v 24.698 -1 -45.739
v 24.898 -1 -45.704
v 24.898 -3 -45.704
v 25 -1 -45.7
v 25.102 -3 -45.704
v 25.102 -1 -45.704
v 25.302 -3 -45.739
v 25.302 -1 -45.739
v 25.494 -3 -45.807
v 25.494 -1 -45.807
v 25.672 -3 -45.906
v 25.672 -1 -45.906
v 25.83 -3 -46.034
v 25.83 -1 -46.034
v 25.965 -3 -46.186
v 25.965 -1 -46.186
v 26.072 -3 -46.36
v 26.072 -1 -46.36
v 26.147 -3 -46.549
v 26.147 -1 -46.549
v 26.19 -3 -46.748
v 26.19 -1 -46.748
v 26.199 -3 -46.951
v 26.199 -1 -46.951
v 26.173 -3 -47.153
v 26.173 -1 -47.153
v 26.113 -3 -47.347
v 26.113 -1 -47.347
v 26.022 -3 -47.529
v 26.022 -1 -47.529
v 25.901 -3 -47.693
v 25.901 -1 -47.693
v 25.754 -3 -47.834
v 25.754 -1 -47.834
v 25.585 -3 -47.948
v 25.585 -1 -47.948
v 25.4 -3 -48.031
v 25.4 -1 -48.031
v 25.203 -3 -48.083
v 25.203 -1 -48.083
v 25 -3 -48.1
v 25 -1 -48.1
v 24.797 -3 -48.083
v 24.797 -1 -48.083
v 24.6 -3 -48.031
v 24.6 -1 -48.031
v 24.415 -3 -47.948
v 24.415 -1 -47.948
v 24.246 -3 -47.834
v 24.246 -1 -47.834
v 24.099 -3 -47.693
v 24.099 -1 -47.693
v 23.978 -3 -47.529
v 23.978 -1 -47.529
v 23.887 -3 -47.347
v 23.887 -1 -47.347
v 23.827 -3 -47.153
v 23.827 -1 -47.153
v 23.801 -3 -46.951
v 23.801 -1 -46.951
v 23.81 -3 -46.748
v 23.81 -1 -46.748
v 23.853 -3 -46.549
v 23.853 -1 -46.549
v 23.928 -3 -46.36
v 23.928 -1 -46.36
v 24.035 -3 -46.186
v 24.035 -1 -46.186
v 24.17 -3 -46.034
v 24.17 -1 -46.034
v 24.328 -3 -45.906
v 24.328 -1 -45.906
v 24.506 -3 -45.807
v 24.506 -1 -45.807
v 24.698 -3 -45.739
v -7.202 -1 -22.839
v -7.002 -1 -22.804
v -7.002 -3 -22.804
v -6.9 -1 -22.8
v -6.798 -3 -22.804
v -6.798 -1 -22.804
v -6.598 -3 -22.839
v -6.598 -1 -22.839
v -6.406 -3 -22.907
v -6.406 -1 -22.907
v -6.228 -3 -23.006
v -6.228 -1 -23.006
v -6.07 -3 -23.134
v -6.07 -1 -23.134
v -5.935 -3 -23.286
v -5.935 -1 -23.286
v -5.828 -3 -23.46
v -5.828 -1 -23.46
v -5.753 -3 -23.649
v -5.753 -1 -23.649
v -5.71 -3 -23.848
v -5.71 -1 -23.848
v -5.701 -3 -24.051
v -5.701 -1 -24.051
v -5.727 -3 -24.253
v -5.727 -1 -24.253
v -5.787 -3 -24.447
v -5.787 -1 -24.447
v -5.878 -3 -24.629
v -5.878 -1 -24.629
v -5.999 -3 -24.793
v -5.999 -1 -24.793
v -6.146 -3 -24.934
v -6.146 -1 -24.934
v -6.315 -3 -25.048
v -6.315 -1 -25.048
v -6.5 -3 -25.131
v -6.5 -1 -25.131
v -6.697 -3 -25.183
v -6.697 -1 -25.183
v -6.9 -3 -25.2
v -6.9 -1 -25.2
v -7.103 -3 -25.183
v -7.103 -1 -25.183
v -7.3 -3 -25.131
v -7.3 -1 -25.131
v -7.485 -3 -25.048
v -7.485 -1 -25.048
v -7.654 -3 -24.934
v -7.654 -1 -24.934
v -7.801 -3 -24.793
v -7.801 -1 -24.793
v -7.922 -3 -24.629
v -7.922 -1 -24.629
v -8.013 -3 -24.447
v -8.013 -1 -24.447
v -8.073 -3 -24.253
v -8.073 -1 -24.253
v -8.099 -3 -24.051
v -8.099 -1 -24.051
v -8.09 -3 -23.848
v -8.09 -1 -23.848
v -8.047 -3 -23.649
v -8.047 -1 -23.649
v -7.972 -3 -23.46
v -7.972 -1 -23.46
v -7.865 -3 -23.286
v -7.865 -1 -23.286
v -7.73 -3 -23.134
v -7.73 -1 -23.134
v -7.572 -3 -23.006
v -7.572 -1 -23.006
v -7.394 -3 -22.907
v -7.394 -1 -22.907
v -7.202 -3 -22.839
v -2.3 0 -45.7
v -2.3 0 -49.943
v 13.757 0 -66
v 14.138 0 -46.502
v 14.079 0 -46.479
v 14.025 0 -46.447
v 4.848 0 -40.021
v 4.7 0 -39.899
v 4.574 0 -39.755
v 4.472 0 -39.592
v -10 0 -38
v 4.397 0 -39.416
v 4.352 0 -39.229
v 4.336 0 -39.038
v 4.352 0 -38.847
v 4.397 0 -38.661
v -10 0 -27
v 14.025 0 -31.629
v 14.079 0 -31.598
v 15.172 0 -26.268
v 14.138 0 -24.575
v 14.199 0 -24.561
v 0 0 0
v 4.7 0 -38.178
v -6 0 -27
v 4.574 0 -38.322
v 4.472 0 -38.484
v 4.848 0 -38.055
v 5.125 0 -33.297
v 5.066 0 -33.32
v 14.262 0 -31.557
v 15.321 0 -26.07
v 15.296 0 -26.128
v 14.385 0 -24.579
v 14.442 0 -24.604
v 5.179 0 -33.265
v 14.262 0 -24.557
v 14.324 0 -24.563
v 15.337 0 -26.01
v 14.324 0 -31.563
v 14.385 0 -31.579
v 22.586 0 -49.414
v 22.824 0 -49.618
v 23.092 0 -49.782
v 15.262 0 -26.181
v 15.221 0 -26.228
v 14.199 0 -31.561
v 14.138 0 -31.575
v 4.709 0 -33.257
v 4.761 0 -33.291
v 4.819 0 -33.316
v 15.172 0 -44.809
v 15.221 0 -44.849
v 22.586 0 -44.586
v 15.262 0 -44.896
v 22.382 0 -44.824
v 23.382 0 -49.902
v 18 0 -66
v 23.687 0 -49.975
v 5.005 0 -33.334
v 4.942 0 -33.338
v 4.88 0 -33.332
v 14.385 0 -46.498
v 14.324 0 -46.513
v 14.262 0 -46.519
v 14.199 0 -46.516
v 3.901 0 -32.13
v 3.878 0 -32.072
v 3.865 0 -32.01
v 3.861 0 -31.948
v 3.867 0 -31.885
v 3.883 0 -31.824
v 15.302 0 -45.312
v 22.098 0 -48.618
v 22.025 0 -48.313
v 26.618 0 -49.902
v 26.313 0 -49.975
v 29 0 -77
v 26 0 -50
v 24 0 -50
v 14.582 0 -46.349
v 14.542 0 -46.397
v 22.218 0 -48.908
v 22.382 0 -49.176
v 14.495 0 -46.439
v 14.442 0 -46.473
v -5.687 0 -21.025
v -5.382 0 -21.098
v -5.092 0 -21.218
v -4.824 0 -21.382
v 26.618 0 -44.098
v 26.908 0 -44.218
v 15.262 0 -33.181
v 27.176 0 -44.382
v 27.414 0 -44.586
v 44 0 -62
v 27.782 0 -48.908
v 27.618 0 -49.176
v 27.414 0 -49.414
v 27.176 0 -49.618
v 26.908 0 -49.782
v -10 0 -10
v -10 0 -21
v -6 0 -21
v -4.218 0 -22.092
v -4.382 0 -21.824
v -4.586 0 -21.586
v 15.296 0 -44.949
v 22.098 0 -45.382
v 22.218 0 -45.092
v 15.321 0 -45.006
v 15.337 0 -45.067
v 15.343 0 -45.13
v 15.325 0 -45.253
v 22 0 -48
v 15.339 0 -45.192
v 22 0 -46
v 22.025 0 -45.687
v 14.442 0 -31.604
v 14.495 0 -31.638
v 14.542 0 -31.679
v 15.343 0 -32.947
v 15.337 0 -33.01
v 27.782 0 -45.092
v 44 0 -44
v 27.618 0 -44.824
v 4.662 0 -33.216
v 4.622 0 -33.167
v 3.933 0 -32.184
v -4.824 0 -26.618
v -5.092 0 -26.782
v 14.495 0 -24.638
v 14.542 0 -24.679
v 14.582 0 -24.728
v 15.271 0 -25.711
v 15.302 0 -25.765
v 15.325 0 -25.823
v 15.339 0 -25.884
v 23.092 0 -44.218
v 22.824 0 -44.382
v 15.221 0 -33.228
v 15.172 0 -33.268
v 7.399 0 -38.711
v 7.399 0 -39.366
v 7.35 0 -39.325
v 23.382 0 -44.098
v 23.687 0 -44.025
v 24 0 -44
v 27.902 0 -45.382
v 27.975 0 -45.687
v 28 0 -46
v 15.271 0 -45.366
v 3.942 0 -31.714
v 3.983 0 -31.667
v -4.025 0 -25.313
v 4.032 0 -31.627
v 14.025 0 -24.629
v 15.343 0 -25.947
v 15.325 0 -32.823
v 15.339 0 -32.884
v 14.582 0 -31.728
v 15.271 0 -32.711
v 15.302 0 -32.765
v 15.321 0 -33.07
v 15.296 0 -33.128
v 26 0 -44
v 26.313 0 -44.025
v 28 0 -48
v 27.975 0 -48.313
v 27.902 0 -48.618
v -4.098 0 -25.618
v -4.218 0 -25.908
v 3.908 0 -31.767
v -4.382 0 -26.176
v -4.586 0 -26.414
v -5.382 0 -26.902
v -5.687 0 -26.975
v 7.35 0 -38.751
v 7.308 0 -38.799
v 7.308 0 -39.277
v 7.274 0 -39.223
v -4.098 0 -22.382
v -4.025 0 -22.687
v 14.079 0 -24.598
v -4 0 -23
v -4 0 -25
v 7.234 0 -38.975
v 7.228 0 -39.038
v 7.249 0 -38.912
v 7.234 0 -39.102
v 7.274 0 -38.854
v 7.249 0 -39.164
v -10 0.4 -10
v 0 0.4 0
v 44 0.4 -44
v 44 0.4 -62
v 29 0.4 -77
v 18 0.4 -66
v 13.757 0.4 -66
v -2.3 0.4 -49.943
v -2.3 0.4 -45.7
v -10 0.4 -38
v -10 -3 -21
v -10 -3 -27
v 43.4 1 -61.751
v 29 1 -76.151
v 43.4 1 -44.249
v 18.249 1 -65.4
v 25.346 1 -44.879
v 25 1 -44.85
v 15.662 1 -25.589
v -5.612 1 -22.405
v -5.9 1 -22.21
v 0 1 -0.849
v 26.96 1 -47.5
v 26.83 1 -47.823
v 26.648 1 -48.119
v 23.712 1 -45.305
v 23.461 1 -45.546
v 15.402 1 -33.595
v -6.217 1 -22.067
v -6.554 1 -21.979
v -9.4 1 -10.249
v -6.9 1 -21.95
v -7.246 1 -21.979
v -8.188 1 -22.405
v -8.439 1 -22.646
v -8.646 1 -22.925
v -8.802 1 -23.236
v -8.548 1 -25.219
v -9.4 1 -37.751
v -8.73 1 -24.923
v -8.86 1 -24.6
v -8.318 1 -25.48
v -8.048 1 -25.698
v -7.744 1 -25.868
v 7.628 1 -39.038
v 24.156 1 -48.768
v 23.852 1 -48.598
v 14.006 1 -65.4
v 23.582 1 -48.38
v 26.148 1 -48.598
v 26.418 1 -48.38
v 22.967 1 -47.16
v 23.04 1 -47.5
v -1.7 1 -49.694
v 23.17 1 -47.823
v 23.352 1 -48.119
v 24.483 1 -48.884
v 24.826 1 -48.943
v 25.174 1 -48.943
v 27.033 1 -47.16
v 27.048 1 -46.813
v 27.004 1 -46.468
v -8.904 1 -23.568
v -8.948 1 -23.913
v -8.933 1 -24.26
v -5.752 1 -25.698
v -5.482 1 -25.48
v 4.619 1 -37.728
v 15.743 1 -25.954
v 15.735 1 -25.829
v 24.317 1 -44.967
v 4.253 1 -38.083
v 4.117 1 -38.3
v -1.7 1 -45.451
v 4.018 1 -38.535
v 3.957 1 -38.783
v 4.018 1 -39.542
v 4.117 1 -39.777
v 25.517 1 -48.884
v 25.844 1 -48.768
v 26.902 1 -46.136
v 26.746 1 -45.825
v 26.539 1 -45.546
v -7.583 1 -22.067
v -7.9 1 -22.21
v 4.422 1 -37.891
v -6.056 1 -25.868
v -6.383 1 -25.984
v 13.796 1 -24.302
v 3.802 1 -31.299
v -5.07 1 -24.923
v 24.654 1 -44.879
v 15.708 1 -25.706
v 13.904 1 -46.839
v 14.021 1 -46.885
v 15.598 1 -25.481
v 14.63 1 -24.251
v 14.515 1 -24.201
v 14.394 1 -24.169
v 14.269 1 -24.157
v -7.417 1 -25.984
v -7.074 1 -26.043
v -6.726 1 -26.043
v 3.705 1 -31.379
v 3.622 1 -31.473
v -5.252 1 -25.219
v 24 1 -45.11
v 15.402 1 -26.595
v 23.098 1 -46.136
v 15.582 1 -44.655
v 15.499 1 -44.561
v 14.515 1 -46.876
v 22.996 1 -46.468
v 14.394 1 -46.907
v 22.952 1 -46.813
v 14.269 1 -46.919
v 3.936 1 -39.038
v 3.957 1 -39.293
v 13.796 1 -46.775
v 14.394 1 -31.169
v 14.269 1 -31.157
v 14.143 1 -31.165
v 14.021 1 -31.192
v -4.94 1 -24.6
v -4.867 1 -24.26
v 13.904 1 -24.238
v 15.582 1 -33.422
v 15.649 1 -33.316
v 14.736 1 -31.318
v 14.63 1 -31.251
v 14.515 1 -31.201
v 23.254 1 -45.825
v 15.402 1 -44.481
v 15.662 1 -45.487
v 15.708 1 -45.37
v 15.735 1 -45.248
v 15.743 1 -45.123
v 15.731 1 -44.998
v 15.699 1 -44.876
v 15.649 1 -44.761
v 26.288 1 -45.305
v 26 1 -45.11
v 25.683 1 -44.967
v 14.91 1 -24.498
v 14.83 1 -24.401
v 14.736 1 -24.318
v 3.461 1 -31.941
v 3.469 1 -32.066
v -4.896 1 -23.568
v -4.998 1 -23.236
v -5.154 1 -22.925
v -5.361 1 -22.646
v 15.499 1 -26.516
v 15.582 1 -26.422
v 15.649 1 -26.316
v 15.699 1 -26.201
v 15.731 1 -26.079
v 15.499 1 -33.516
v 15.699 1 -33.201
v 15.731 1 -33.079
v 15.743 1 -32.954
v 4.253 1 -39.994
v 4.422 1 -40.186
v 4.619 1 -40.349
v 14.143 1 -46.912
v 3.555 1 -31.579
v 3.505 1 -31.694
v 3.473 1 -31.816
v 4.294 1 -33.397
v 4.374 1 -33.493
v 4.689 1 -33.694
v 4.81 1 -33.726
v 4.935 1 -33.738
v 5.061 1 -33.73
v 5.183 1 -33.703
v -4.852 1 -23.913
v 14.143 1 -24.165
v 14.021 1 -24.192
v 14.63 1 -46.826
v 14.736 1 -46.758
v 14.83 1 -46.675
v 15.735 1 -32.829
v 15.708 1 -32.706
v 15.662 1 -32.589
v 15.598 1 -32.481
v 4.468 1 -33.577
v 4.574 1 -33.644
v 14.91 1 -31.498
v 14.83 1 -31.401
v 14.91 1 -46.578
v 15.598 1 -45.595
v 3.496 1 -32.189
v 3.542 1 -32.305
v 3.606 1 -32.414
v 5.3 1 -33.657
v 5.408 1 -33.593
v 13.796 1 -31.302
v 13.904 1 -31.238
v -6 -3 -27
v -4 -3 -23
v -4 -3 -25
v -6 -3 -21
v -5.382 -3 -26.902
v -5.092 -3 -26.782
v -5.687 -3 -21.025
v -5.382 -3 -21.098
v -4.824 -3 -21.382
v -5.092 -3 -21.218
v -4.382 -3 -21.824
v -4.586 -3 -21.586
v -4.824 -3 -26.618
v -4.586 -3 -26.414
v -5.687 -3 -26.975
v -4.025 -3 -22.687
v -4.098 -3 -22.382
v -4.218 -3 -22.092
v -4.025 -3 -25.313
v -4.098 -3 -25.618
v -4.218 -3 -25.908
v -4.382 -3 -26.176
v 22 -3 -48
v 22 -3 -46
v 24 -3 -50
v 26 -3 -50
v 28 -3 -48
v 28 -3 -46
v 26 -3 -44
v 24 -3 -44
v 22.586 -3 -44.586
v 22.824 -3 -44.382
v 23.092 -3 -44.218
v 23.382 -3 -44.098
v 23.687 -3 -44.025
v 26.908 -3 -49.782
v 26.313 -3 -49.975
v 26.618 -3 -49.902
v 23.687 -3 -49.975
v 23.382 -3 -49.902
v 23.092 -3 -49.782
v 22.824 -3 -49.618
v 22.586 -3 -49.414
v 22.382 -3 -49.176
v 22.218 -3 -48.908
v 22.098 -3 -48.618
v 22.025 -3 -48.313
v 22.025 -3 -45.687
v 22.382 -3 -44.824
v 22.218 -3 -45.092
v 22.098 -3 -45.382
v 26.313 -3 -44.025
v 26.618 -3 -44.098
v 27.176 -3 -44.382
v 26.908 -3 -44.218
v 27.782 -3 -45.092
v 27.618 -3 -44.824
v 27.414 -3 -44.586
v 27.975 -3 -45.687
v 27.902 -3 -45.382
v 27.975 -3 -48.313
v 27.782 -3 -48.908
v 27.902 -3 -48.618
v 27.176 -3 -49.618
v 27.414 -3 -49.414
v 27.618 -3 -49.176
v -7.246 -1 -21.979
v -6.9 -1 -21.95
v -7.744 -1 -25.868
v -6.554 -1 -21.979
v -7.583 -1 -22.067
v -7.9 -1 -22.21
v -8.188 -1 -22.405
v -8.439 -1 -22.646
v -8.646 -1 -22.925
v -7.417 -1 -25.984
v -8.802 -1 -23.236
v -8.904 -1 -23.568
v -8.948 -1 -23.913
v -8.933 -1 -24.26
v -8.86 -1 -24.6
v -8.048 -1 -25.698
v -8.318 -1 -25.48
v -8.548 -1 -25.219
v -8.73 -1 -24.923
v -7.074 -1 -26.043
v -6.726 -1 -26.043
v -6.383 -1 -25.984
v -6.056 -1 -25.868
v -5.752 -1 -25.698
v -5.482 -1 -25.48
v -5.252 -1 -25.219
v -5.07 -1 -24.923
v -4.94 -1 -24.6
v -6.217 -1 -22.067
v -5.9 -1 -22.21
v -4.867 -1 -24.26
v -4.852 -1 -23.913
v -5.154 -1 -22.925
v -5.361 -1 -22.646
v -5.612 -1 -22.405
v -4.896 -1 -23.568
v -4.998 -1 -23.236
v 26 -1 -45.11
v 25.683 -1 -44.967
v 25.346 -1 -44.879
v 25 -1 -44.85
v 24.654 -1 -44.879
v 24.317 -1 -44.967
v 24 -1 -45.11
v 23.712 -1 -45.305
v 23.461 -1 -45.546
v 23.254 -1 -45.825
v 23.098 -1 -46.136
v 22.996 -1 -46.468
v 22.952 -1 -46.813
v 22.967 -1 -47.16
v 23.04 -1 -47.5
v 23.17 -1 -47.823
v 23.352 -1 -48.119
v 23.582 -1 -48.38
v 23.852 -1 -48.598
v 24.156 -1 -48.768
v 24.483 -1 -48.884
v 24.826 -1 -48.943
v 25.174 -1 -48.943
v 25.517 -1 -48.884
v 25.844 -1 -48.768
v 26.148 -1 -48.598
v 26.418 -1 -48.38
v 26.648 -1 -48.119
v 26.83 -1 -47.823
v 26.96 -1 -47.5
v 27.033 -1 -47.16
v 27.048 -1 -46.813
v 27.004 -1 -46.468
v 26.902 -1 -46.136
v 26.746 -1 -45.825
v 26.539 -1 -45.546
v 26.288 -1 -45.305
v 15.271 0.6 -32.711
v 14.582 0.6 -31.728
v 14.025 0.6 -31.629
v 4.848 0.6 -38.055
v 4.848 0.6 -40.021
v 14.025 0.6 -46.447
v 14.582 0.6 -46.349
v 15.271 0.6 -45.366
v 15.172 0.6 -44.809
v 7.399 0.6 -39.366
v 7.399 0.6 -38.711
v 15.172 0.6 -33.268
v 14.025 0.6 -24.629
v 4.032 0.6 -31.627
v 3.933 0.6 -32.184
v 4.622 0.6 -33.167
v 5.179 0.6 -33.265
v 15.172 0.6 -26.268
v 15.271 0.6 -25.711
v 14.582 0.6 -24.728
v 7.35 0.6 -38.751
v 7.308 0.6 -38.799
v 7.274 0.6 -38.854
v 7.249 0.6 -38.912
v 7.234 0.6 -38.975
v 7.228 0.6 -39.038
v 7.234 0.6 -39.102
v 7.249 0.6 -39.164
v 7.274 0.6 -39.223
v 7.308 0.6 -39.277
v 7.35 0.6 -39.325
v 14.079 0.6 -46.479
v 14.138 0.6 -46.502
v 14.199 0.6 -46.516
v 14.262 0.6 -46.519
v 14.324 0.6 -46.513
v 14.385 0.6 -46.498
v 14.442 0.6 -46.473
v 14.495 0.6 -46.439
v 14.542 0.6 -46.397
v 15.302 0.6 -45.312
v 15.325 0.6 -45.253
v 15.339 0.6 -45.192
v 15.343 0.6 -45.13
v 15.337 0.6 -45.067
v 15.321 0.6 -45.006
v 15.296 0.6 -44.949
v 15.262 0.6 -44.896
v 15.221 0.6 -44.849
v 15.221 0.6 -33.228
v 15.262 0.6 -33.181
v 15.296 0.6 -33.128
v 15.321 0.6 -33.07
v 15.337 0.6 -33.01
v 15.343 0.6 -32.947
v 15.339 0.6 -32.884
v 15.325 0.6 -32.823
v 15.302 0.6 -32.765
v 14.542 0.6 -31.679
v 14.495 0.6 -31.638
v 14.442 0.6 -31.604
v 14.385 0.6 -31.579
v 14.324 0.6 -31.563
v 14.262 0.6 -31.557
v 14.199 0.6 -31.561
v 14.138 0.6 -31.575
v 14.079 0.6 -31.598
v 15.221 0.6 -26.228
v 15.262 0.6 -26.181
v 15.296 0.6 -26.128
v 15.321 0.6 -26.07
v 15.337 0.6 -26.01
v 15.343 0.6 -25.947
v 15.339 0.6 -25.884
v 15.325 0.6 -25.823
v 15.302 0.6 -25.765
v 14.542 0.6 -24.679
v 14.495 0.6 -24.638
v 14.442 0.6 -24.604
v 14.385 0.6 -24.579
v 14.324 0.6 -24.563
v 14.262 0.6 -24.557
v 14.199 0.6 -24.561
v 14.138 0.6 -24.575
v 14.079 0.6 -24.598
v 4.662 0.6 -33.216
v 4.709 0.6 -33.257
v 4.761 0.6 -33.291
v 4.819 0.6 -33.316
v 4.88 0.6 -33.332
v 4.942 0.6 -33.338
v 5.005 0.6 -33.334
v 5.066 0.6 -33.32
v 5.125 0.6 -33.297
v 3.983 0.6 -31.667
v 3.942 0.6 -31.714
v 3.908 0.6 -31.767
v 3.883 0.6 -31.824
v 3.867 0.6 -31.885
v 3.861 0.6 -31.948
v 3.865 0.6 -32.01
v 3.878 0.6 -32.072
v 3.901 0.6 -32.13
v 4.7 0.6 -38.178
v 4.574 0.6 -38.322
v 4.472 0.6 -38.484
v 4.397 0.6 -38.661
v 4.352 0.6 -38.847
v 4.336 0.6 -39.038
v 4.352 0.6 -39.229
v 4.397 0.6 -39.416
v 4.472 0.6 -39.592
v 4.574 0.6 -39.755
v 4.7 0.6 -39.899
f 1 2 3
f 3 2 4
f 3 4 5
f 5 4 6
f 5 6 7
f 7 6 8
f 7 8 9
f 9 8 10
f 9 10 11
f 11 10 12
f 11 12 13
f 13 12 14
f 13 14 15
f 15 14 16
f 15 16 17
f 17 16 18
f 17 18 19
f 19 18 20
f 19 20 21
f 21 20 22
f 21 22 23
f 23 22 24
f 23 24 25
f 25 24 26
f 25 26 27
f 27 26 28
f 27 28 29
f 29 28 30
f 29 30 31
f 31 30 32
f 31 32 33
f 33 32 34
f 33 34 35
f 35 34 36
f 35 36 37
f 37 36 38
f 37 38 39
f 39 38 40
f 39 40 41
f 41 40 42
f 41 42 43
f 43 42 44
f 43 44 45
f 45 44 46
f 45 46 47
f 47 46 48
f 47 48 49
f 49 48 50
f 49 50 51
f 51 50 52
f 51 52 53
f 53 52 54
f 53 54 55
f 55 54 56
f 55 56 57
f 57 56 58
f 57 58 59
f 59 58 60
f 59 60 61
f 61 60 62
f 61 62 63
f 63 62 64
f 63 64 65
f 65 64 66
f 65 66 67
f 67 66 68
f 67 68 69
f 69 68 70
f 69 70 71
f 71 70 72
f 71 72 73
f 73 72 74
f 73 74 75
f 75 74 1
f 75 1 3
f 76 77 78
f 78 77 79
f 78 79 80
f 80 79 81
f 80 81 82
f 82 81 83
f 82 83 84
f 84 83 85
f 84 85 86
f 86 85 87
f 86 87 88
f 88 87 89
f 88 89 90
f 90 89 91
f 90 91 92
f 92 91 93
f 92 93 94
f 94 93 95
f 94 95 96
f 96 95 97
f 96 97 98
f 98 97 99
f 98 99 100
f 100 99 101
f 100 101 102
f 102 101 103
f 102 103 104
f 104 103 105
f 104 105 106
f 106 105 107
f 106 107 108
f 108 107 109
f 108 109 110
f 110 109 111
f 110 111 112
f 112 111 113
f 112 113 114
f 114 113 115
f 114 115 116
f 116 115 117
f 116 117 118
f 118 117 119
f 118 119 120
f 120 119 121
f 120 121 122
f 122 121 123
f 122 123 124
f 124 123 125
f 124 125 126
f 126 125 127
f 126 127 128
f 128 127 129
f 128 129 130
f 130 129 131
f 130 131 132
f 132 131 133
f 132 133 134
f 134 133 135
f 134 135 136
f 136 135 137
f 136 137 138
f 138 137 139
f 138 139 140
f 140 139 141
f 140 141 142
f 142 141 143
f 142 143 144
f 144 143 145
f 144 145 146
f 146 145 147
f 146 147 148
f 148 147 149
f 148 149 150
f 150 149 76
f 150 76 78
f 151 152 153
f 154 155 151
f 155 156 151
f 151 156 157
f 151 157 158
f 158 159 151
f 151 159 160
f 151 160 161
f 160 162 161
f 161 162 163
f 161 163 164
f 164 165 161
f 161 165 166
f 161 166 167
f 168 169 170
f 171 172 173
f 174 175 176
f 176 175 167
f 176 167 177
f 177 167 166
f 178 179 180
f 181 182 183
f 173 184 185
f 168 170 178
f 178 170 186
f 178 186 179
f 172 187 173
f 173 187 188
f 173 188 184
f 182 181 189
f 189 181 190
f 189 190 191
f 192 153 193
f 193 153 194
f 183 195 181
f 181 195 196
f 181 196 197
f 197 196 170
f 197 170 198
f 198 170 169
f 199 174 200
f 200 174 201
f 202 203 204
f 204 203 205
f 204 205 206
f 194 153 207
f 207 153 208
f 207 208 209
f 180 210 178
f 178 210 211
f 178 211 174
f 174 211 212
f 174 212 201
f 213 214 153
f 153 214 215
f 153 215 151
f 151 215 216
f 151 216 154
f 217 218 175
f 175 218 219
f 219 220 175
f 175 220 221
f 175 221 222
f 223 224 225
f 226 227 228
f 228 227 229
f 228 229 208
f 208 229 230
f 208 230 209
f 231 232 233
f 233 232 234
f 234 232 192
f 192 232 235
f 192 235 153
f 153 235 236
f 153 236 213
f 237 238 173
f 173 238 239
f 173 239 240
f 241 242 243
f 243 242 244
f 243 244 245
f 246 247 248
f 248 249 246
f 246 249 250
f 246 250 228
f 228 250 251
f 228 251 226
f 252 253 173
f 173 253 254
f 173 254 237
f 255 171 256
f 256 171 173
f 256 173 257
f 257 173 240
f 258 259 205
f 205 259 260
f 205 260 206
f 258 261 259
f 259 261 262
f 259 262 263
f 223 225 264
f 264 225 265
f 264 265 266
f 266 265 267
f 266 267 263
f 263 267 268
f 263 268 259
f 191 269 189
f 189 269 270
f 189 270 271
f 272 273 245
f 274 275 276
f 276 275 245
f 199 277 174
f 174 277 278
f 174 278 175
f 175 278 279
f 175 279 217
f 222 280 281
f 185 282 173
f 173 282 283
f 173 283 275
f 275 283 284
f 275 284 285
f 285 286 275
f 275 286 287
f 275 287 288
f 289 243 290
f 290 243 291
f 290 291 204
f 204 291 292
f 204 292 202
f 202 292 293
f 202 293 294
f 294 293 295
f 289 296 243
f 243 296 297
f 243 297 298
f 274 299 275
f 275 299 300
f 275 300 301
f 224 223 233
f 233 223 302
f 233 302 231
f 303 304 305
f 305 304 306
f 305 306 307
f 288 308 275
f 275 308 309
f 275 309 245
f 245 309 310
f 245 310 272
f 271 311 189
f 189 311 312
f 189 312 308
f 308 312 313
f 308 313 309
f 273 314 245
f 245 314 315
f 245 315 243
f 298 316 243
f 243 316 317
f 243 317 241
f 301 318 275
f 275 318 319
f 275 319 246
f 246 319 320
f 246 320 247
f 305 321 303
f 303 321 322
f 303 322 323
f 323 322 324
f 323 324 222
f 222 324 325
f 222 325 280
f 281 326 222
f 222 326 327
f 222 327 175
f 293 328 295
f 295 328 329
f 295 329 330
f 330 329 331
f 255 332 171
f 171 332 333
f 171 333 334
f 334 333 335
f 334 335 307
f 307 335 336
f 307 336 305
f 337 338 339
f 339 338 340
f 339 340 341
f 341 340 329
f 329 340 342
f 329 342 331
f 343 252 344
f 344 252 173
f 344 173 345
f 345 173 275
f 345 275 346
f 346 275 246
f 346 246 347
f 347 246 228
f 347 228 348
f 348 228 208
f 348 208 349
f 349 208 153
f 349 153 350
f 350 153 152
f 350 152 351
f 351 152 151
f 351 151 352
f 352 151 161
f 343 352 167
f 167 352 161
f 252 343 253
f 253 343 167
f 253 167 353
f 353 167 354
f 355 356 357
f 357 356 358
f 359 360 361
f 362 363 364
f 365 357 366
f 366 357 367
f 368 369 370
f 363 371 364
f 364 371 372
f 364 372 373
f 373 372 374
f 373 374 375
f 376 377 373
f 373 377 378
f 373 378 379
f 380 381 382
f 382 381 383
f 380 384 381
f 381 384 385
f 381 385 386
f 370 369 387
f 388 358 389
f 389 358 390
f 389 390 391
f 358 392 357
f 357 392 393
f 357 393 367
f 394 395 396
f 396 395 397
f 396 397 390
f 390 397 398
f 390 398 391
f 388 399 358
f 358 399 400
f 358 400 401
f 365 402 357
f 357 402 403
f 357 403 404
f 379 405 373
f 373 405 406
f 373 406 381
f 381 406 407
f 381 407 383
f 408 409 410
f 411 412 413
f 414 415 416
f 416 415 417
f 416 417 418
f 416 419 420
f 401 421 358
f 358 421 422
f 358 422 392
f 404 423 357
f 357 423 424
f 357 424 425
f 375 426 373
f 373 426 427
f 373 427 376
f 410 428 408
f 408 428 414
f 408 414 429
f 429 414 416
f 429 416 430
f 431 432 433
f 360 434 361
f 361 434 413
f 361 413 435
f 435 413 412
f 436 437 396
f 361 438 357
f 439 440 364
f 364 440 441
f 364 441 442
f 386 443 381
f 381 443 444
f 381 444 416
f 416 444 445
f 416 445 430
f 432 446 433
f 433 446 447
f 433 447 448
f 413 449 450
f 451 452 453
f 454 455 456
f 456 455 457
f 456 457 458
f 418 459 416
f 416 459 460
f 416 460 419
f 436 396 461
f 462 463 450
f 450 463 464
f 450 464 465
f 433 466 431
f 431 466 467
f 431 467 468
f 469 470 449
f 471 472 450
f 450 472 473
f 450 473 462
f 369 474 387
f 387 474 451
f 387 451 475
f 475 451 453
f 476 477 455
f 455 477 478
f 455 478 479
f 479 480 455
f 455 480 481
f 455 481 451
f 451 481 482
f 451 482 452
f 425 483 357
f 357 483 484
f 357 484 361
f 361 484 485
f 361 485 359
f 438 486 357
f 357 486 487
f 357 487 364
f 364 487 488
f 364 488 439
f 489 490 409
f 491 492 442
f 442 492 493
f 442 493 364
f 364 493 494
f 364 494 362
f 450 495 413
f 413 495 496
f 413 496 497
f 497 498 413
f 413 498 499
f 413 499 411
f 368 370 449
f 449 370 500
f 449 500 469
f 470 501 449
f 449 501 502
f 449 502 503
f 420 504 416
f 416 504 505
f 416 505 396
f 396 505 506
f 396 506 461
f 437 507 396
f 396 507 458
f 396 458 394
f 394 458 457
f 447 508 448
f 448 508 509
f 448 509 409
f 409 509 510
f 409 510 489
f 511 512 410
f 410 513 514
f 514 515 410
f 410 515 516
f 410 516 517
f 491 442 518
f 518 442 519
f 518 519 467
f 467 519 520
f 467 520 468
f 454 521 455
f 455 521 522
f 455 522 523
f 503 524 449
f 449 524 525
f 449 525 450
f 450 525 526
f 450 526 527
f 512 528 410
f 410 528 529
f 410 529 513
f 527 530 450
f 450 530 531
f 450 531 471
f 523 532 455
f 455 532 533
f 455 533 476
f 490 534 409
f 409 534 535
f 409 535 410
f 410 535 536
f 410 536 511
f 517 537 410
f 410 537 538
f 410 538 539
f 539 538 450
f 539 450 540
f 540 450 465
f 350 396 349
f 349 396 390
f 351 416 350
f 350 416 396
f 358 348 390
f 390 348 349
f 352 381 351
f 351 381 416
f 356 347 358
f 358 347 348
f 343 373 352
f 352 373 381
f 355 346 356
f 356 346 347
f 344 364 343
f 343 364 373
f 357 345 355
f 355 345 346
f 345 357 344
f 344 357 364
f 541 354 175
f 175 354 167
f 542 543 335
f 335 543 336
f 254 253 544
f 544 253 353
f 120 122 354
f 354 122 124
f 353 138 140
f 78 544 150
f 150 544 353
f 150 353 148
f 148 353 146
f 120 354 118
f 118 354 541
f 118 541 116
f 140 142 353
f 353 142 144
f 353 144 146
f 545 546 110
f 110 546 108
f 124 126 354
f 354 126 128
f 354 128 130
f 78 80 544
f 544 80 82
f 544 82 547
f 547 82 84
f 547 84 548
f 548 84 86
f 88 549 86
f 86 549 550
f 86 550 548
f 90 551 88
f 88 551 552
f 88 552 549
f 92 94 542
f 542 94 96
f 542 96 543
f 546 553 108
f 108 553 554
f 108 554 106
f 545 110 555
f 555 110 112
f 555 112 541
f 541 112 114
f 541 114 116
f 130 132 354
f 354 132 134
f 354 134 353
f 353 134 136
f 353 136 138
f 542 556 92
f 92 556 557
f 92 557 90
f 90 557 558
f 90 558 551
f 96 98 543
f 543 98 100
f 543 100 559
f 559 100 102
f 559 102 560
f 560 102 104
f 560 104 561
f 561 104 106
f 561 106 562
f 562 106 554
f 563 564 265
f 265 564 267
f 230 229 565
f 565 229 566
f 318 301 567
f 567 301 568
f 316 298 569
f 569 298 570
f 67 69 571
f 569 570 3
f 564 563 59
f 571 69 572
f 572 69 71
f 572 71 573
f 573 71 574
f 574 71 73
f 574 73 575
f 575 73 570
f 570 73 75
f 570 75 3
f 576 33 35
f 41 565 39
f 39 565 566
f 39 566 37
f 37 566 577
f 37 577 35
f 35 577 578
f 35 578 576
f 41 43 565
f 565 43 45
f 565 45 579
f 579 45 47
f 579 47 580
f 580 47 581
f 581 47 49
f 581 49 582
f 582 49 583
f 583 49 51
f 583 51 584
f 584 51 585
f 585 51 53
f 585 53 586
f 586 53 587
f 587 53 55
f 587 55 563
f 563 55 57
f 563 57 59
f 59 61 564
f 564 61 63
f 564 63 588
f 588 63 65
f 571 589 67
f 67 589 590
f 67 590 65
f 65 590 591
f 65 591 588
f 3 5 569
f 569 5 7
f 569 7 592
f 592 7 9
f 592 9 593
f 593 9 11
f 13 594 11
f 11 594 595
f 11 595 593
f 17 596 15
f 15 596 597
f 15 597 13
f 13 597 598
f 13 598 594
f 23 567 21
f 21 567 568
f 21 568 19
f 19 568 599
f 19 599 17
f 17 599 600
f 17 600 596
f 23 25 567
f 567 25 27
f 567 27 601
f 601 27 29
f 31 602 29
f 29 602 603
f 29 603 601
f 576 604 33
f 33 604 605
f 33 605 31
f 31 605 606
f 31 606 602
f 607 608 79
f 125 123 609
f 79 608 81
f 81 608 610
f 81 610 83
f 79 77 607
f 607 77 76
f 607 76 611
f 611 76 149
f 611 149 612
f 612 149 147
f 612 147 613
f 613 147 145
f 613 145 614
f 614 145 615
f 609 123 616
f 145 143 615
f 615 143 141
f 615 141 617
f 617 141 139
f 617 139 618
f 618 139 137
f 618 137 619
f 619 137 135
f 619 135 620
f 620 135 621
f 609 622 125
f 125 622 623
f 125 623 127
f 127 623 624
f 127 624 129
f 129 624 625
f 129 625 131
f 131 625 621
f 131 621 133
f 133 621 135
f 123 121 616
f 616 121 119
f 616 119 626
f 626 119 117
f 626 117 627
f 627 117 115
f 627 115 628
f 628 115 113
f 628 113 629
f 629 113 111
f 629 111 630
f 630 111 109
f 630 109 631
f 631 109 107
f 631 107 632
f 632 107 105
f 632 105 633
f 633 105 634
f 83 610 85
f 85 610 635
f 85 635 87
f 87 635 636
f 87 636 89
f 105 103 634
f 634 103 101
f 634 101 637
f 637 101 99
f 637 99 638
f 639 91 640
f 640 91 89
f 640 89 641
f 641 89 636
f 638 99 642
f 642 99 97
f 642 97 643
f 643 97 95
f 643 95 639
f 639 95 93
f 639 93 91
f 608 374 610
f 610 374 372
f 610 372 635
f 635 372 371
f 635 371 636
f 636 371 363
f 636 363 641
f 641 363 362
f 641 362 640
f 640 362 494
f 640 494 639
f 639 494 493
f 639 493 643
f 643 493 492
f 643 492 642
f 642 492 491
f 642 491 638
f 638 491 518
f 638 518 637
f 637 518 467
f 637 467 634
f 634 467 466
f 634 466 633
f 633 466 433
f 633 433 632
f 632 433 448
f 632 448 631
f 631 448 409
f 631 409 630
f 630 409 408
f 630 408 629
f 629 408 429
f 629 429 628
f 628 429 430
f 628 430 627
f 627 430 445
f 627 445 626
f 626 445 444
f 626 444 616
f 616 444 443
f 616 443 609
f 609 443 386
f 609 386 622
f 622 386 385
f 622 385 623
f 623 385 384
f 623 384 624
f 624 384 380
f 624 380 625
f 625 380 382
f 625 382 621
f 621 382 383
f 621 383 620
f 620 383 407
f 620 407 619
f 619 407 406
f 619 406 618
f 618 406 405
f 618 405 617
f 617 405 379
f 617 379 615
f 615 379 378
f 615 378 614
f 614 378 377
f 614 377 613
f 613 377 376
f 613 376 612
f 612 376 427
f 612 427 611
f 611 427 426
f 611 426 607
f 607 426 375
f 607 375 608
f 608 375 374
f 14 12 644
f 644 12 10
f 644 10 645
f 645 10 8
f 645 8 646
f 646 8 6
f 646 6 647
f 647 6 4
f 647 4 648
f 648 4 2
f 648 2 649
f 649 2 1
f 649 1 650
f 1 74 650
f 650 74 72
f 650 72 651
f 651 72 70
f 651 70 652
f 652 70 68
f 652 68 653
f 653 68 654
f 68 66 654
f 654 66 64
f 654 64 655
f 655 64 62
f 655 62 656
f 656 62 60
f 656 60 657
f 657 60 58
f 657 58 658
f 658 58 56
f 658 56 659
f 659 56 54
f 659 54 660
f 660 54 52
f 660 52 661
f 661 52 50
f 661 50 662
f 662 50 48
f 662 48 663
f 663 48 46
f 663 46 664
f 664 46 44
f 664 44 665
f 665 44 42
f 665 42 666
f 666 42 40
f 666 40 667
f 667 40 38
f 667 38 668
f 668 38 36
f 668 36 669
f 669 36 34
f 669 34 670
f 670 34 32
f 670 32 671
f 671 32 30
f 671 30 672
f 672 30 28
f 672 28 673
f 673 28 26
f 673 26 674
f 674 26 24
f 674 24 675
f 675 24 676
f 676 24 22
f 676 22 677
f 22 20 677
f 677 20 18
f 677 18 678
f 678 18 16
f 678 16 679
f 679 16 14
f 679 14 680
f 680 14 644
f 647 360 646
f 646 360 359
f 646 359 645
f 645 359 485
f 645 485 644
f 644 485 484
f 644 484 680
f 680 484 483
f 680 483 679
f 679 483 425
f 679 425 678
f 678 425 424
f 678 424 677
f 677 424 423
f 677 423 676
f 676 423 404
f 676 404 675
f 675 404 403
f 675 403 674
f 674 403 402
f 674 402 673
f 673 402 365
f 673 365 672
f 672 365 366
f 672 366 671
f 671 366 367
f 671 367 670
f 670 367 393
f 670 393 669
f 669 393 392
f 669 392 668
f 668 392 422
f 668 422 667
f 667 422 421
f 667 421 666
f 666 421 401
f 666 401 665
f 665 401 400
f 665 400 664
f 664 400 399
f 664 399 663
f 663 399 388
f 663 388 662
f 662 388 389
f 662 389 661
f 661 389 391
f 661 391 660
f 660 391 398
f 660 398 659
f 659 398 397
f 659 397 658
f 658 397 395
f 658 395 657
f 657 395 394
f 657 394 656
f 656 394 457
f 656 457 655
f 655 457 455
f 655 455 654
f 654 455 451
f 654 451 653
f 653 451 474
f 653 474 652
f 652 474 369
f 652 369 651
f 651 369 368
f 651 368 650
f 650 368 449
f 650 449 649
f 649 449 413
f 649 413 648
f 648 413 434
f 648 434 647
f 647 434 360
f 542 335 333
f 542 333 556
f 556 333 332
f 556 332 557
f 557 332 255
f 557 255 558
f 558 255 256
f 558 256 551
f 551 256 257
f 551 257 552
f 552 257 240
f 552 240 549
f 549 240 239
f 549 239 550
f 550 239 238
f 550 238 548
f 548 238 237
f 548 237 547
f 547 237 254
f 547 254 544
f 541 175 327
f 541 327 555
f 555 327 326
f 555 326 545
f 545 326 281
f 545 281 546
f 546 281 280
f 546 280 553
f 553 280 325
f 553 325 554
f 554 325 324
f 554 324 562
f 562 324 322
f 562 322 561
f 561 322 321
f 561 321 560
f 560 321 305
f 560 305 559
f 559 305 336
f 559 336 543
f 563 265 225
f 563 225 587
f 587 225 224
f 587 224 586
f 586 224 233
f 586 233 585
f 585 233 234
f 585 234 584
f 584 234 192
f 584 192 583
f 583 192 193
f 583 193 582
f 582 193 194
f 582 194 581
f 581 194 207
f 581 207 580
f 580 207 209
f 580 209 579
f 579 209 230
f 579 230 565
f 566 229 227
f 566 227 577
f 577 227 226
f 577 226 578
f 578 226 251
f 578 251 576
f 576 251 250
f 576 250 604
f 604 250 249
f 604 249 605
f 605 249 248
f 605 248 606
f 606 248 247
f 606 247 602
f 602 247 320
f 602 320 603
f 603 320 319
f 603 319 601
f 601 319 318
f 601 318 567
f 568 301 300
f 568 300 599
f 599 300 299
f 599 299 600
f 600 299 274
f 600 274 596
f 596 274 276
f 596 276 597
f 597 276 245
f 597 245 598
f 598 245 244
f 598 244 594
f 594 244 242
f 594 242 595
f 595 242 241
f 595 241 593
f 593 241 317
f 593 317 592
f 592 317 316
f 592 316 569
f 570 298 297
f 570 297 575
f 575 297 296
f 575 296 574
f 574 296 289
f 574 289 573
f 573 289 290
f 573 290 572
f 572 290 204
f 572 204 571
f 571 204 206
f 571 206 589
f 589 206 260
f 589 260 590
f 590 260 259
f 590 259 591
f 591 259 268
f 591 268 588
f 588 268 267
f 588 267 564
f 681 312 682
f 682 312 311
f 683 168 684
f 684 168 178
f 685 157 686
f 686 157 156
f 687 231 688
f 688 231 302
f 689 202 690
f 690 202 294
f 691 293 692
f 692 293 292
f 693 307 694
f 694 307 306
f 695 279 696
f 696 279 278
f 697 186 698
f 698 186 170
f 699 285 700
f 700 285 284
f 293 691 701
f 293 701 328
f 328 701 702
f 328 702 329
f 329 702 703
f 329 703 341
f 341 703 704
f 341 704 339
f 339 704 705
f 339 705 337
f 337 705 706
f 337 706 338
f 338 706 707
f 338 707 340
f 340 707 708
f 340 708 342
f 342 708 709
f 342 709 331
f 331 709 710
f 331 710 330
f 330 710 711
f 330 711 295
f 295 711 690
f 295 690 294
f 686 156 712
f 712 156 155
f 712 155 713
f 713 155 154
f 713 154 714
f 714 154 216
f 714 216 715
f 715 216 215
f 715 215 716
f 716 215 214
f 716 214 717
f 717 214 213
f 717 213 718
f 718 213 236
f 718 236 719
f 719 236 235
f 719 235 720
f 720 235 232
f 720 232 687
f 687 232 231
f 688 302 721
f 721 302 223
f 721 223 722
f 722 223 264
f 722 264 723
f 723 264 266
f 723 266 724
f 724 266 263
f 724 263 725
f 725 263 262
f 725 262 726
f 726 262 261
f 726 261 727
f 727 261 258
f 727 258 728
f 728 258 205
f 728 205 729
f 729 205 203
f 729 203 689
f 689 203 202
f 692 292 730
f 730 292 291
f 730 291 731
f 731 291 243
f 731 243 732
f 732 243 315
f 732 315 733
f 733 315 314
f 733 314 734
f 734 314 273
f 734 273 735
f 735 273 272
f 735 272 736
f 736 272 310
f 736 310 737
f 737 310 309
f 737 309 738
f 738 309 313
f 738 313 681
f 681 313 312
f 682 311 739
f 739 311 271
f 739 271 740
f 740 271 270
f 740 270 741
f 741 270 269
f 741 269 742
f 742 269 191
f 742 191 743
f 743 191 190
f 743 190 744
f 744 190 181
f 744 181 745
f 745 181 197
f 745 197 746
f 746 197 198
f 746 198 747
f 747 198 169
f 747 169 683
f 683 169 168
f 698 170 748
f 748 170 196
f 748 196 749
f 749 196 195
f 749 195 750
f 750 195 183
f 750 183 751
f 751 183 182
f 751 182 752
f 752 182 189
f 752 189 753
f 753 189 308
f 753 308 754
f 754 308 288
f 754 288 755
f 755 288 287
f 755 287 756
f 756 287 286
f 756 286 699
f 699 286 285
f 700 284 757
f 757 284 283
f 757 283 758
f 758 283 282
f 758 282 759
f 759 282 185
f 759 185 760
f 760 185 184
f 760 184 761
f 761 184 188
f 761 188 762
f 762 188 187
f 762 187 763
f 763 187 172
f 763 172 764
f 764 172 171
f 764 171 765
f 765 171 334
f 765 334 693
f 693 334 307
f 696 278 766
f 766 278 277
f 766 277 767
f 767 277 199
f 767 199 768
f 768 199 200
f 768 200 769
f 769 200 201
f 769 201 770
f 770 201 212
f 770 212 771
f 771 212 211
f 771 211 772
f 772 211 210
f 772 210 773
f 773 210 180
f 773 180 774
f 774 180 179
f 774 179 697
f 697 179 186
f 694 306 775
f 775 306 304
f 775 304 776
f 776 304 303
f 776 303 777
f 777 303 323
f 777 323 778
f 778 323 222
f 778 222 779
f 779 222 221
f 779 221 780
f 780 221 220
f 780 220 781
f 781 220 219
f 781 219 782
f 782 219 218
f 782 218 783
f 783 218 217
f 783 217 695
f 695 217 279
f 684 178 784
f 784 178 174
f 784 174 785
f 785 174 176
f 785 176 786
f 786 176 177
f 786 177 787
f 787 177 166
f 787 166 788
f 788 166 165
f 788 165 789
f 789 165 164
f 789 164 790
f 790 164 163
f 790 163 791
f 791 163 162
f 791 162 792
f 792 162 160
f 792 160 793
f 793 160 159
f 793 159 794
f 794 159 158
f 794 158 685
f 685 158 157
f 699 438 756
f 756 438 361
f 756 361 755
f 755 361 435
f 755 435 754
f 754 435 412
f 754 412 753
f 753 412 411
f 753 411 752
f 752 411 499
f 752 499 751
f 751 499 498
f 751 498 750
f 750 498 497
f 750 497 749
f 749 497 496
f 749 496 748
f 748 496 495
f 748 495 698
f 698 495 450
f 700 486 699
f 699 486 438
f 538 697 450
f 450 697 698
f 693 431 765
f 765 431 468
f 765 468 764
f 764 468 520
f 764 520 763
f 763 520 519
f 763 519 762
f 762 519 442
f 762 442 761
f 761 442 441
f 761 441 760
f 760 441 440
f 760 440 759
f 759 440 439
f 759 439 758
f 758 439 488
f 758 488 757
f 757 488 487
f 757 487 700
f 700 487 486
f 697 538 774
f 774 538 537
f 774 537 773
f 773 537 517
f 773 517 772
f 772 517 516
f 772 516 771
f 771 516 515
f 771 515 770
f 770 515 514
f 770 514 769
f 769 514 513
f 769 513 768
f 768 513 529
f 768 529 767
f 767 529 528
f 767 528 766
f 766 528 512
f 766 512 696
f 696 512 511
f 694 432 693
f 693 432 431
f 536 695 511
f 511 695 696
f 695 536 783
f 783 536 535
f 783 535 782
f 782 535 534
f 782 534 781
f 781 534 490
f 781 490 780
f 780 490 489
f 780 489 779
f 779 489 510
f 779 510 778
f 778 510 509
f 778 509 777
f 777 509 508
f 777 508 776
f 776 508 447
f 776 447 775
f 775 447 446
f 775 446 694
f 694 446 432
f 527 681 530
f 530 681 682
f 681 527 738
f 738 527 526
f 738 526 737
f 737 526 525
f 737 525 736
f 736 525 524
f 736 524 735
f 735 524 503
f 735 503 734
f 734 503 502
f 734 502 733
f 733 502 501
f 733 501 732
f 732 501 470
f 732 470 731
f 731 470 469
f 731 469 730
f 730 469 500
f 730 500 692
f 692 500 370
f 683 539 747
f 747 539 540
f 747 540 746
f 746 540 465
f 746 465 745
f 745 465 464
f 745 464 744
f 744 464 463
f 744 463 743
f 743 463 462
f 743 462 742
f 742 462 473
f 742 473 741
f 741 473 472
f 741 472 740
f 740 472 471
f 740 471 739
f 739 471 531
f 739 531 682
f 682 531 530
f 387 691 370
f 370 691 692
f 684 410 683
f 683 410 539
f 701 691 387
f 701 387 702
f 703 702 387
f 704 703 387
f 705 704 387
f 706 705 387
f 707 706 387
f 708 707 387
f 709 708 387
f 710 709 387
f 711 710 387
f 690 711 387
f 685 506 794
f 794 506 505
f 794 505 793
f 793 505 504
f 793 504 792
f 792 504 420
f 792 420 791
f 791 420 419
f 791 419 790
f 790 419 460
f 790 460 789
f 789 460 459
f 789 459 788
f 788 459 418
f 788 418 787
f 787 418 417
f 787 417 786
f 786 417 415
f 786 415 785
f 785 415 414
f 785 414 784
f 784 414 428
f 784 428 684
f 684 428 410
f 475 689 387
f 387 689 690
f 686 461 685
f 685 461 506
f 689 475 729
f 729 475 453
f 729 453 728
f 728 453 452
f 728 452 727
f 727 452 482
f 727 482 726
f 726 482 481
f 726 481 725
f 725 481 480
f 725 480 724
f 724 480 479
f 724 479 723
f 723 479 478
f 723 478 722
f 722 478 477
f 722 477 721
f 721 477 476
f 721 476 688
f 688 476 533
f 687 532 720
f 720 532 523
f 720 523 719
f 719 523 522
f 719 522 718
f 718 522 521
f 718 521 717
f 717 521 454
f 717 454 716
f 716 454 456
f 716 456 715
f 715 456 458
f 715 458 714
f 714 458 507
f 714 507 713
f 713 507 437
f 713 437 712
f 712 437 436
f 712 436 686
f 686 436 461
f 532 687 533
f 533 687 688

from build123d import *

# Parameters (mm, degrees)
EXTRUDE_1_DEPTH     = 1
CHAMFER_1_SIZE      = 0.6
SKETCH_2_W          = 6
SKETCH_2_H          = 6
EXTRUDE_2_DEPTH     = 3
SKETCH_3_R          = 1.2
CUT_EXTRUDE_1_DEPTH = 5
SKETCH_4_R          = 2.05
CUT_EXTRUDE_2_DEPTH = 2
FILLET_1_R          = 2
CUT_EXTRUDE_3_DEPTH = 5
FILLET_2_R          = 0.4
FILLET_3_R          = 1.2
CHAMFER_2_SIZE      = 0.4


with BuildPart() as part:
    # 草图1 → 凸台-拉伸1 (new body)
    with BuildSketch(Plane(origin=(0, 0, 0), x_dir=(1, 0, 0), z_dir=(0, 1, 0))):
        Polygon((0, 0), (44, 44), (44, 62), (29, 77), (18, 66), (13.757359313, 66), (-2.3, 49.942640687), (-2.3, 45.7), (-10, 38), (-10, 10), align=None)
    extrude(amount=EXTRUDE_1_DEPTH)

    # 倒角1
    chamfer_1_edges = [part.edges().sort_by_distance(p)[0] for p in [
        (44, 1, -53),
        (36.5, 1, -69.5),
        (23.5, 1, -71.5),
        (15.878679656, 1, -66),
        (5.728679656, 1, -57.971320344),
        (-2.3, 1, -47.821320344),
        (-6.15, 1, -41.85),
        (-10, 1, -24),
        (-5, 1, -5),
        (22, 1, -22),
    ]]
    chamfer(chamfer_1_edges, length=CHAMFER_1_SIZE)

    # 草图2 → 凸台-拉伸2 (add)
    with BuildSketch(Plane.XZ):
        with Locations((-7, -24)):
            Rectangle(SKETCH_2_W, SKETCH_2_H)
        with Locations((25, -47)):
            Rectangle(SKETCH_2_W, SKETCH_2_H)
    extrude(amount=EXTRUDE_2_DEPTH)

    # 草图3 → 切除-拉伸1 (cut, through all)
    with BuildSketch(Plane(origin=(0, -3, 0), x_dir=(-1, 0, 0), z_dir=(0, -1, 0))):
        with Locations((6.9, 24)):
            Circle(SKETCH_3_R)
        with Locations((-25, 46.9)):
            Circle(SKETCH_3_R)
    extrude(amount=-CUT_EXTRUDE_1_DEPTH, mode=Mode.SUBTRACT)

    # 草图4 → 切除-拉伸2 (cut)
    with BuildSketch(Plane(origin=(0, 1, 0), x_dir=(1, 0, 0), z_dir=(0, 1, 0))):
        with Locations((-6.9, 24)):
            Circle(SKETCH_4_R)
        with Locations((25, 46.9)):
            Circle(SKETCH_4_R)
    extrude(amount=-CUT_EXTRUDE_2_DEPTH, mode=Mode.SUBTRACT)

    # 圆角1
    fillet_1_edges = [part.edges().sort_by_distance(p)[0] for p in [
        (-4, -1.5, -27),
        (-4, -1.5, -21),
        (22, -1.5, -44),
        (22, -1.5, -50),
        (28, -1.5, -50),
        (28, -1.5, -44),
    ]]
    fillet(fillet_1_edges, radius=FILLET_1_R)

    # 草图5 → 切除-拉伸3 (cut, through all)
    with BuildSketch(Plane(origin=(0, 1, 0), x_dir=(1, 0, 0), z_dir=(0, 1, 0))):
        Polygon((14.352847127, 24.4), (15.5, 26.038304089), (4.851023424, 33.494797761), (3.703870552, 31.856493673), align=None)
        Polygon((14.352847127, 31.4), (3.444218368, 39.038304089), (14.352847127, 46.676608177), (15.5, 45.038304089), (6.93111196, 39.038304089), (15.5, 33.038304089), align=None)
    extrude(amount=-CUT_EXTRUDE_3_DEPTH, mode=Mode.SUBTRACT)

    # 圆角2
    fillet_2_edges = [part.edges().sort_by_distance(p)[0] for p in [
        (14.352847127, 0.5, -24.4),
        (3.703870552, 0.5, -31.856493673),
        (4.851023424, 0.5, -33.494797761),
        (15.5, 0.5, -26.038304089),
        (15.5, 0.5, -33.038304089),
        (14.352847127, 0.5, -31.4),
        (14.352847127, 0.5, -46.676608177),
        (15.5, 0.5, -45.038304089),
        (6.93111196, 0.5, -39.038304089),
    ]]
    fillet(fillet_2_edges, radius=FILLET_2_R)

    # 圆角3
    fillet_3_edges = [part.edges().sort_by_distance(p)[0] for p in [
        (3.444218368, 0.5, -39.038304089),
    ]]
    fillet(fillet_3_edges, radius=FILLET_3_R)

    # 倒角2
    chamfer_2_edges = [part.edges().sort_by_distance(p)[0] for p in [
        (11.285699643, 1, -42.08741921),
        (9.028358839, 1, -28.128246836),
        (4.277446988, 1, -32.675645717),
        (10.175511712, 1, -29.766550925),
        (14.926423564, 1, -25.219152044),
        (14.926423564, 1, -32.219152044),
        (9.436624555, 1, -43.234232072),
        (14.926423564, 1, -45.857456133),
        (11.285699643, 1, -35.989188967),
        (7.228490678, 1, -39.038304089),
        (14.324076155, 1, -46.513439886),
        (15.336831709, 1, -45.067075061),
        (15.336831709, 1, -33.009533116),
        (14.324076155, 1, -31.563168291),
        (15.336831709, 1, -26.009533116),
        (14.324076155, 1, -24.563168291),
        (4.879794396, 1, -33.33162947),
        (3.867038843, 1, -31.885264645),
        (9.436624555, 1, -34.842376105),
        (4.336354523, 1, -39.038304089),
    ]]
    chamfer(chamfer_2_edges, length=CHAMFER_2_SIZE)


solid = part.part
